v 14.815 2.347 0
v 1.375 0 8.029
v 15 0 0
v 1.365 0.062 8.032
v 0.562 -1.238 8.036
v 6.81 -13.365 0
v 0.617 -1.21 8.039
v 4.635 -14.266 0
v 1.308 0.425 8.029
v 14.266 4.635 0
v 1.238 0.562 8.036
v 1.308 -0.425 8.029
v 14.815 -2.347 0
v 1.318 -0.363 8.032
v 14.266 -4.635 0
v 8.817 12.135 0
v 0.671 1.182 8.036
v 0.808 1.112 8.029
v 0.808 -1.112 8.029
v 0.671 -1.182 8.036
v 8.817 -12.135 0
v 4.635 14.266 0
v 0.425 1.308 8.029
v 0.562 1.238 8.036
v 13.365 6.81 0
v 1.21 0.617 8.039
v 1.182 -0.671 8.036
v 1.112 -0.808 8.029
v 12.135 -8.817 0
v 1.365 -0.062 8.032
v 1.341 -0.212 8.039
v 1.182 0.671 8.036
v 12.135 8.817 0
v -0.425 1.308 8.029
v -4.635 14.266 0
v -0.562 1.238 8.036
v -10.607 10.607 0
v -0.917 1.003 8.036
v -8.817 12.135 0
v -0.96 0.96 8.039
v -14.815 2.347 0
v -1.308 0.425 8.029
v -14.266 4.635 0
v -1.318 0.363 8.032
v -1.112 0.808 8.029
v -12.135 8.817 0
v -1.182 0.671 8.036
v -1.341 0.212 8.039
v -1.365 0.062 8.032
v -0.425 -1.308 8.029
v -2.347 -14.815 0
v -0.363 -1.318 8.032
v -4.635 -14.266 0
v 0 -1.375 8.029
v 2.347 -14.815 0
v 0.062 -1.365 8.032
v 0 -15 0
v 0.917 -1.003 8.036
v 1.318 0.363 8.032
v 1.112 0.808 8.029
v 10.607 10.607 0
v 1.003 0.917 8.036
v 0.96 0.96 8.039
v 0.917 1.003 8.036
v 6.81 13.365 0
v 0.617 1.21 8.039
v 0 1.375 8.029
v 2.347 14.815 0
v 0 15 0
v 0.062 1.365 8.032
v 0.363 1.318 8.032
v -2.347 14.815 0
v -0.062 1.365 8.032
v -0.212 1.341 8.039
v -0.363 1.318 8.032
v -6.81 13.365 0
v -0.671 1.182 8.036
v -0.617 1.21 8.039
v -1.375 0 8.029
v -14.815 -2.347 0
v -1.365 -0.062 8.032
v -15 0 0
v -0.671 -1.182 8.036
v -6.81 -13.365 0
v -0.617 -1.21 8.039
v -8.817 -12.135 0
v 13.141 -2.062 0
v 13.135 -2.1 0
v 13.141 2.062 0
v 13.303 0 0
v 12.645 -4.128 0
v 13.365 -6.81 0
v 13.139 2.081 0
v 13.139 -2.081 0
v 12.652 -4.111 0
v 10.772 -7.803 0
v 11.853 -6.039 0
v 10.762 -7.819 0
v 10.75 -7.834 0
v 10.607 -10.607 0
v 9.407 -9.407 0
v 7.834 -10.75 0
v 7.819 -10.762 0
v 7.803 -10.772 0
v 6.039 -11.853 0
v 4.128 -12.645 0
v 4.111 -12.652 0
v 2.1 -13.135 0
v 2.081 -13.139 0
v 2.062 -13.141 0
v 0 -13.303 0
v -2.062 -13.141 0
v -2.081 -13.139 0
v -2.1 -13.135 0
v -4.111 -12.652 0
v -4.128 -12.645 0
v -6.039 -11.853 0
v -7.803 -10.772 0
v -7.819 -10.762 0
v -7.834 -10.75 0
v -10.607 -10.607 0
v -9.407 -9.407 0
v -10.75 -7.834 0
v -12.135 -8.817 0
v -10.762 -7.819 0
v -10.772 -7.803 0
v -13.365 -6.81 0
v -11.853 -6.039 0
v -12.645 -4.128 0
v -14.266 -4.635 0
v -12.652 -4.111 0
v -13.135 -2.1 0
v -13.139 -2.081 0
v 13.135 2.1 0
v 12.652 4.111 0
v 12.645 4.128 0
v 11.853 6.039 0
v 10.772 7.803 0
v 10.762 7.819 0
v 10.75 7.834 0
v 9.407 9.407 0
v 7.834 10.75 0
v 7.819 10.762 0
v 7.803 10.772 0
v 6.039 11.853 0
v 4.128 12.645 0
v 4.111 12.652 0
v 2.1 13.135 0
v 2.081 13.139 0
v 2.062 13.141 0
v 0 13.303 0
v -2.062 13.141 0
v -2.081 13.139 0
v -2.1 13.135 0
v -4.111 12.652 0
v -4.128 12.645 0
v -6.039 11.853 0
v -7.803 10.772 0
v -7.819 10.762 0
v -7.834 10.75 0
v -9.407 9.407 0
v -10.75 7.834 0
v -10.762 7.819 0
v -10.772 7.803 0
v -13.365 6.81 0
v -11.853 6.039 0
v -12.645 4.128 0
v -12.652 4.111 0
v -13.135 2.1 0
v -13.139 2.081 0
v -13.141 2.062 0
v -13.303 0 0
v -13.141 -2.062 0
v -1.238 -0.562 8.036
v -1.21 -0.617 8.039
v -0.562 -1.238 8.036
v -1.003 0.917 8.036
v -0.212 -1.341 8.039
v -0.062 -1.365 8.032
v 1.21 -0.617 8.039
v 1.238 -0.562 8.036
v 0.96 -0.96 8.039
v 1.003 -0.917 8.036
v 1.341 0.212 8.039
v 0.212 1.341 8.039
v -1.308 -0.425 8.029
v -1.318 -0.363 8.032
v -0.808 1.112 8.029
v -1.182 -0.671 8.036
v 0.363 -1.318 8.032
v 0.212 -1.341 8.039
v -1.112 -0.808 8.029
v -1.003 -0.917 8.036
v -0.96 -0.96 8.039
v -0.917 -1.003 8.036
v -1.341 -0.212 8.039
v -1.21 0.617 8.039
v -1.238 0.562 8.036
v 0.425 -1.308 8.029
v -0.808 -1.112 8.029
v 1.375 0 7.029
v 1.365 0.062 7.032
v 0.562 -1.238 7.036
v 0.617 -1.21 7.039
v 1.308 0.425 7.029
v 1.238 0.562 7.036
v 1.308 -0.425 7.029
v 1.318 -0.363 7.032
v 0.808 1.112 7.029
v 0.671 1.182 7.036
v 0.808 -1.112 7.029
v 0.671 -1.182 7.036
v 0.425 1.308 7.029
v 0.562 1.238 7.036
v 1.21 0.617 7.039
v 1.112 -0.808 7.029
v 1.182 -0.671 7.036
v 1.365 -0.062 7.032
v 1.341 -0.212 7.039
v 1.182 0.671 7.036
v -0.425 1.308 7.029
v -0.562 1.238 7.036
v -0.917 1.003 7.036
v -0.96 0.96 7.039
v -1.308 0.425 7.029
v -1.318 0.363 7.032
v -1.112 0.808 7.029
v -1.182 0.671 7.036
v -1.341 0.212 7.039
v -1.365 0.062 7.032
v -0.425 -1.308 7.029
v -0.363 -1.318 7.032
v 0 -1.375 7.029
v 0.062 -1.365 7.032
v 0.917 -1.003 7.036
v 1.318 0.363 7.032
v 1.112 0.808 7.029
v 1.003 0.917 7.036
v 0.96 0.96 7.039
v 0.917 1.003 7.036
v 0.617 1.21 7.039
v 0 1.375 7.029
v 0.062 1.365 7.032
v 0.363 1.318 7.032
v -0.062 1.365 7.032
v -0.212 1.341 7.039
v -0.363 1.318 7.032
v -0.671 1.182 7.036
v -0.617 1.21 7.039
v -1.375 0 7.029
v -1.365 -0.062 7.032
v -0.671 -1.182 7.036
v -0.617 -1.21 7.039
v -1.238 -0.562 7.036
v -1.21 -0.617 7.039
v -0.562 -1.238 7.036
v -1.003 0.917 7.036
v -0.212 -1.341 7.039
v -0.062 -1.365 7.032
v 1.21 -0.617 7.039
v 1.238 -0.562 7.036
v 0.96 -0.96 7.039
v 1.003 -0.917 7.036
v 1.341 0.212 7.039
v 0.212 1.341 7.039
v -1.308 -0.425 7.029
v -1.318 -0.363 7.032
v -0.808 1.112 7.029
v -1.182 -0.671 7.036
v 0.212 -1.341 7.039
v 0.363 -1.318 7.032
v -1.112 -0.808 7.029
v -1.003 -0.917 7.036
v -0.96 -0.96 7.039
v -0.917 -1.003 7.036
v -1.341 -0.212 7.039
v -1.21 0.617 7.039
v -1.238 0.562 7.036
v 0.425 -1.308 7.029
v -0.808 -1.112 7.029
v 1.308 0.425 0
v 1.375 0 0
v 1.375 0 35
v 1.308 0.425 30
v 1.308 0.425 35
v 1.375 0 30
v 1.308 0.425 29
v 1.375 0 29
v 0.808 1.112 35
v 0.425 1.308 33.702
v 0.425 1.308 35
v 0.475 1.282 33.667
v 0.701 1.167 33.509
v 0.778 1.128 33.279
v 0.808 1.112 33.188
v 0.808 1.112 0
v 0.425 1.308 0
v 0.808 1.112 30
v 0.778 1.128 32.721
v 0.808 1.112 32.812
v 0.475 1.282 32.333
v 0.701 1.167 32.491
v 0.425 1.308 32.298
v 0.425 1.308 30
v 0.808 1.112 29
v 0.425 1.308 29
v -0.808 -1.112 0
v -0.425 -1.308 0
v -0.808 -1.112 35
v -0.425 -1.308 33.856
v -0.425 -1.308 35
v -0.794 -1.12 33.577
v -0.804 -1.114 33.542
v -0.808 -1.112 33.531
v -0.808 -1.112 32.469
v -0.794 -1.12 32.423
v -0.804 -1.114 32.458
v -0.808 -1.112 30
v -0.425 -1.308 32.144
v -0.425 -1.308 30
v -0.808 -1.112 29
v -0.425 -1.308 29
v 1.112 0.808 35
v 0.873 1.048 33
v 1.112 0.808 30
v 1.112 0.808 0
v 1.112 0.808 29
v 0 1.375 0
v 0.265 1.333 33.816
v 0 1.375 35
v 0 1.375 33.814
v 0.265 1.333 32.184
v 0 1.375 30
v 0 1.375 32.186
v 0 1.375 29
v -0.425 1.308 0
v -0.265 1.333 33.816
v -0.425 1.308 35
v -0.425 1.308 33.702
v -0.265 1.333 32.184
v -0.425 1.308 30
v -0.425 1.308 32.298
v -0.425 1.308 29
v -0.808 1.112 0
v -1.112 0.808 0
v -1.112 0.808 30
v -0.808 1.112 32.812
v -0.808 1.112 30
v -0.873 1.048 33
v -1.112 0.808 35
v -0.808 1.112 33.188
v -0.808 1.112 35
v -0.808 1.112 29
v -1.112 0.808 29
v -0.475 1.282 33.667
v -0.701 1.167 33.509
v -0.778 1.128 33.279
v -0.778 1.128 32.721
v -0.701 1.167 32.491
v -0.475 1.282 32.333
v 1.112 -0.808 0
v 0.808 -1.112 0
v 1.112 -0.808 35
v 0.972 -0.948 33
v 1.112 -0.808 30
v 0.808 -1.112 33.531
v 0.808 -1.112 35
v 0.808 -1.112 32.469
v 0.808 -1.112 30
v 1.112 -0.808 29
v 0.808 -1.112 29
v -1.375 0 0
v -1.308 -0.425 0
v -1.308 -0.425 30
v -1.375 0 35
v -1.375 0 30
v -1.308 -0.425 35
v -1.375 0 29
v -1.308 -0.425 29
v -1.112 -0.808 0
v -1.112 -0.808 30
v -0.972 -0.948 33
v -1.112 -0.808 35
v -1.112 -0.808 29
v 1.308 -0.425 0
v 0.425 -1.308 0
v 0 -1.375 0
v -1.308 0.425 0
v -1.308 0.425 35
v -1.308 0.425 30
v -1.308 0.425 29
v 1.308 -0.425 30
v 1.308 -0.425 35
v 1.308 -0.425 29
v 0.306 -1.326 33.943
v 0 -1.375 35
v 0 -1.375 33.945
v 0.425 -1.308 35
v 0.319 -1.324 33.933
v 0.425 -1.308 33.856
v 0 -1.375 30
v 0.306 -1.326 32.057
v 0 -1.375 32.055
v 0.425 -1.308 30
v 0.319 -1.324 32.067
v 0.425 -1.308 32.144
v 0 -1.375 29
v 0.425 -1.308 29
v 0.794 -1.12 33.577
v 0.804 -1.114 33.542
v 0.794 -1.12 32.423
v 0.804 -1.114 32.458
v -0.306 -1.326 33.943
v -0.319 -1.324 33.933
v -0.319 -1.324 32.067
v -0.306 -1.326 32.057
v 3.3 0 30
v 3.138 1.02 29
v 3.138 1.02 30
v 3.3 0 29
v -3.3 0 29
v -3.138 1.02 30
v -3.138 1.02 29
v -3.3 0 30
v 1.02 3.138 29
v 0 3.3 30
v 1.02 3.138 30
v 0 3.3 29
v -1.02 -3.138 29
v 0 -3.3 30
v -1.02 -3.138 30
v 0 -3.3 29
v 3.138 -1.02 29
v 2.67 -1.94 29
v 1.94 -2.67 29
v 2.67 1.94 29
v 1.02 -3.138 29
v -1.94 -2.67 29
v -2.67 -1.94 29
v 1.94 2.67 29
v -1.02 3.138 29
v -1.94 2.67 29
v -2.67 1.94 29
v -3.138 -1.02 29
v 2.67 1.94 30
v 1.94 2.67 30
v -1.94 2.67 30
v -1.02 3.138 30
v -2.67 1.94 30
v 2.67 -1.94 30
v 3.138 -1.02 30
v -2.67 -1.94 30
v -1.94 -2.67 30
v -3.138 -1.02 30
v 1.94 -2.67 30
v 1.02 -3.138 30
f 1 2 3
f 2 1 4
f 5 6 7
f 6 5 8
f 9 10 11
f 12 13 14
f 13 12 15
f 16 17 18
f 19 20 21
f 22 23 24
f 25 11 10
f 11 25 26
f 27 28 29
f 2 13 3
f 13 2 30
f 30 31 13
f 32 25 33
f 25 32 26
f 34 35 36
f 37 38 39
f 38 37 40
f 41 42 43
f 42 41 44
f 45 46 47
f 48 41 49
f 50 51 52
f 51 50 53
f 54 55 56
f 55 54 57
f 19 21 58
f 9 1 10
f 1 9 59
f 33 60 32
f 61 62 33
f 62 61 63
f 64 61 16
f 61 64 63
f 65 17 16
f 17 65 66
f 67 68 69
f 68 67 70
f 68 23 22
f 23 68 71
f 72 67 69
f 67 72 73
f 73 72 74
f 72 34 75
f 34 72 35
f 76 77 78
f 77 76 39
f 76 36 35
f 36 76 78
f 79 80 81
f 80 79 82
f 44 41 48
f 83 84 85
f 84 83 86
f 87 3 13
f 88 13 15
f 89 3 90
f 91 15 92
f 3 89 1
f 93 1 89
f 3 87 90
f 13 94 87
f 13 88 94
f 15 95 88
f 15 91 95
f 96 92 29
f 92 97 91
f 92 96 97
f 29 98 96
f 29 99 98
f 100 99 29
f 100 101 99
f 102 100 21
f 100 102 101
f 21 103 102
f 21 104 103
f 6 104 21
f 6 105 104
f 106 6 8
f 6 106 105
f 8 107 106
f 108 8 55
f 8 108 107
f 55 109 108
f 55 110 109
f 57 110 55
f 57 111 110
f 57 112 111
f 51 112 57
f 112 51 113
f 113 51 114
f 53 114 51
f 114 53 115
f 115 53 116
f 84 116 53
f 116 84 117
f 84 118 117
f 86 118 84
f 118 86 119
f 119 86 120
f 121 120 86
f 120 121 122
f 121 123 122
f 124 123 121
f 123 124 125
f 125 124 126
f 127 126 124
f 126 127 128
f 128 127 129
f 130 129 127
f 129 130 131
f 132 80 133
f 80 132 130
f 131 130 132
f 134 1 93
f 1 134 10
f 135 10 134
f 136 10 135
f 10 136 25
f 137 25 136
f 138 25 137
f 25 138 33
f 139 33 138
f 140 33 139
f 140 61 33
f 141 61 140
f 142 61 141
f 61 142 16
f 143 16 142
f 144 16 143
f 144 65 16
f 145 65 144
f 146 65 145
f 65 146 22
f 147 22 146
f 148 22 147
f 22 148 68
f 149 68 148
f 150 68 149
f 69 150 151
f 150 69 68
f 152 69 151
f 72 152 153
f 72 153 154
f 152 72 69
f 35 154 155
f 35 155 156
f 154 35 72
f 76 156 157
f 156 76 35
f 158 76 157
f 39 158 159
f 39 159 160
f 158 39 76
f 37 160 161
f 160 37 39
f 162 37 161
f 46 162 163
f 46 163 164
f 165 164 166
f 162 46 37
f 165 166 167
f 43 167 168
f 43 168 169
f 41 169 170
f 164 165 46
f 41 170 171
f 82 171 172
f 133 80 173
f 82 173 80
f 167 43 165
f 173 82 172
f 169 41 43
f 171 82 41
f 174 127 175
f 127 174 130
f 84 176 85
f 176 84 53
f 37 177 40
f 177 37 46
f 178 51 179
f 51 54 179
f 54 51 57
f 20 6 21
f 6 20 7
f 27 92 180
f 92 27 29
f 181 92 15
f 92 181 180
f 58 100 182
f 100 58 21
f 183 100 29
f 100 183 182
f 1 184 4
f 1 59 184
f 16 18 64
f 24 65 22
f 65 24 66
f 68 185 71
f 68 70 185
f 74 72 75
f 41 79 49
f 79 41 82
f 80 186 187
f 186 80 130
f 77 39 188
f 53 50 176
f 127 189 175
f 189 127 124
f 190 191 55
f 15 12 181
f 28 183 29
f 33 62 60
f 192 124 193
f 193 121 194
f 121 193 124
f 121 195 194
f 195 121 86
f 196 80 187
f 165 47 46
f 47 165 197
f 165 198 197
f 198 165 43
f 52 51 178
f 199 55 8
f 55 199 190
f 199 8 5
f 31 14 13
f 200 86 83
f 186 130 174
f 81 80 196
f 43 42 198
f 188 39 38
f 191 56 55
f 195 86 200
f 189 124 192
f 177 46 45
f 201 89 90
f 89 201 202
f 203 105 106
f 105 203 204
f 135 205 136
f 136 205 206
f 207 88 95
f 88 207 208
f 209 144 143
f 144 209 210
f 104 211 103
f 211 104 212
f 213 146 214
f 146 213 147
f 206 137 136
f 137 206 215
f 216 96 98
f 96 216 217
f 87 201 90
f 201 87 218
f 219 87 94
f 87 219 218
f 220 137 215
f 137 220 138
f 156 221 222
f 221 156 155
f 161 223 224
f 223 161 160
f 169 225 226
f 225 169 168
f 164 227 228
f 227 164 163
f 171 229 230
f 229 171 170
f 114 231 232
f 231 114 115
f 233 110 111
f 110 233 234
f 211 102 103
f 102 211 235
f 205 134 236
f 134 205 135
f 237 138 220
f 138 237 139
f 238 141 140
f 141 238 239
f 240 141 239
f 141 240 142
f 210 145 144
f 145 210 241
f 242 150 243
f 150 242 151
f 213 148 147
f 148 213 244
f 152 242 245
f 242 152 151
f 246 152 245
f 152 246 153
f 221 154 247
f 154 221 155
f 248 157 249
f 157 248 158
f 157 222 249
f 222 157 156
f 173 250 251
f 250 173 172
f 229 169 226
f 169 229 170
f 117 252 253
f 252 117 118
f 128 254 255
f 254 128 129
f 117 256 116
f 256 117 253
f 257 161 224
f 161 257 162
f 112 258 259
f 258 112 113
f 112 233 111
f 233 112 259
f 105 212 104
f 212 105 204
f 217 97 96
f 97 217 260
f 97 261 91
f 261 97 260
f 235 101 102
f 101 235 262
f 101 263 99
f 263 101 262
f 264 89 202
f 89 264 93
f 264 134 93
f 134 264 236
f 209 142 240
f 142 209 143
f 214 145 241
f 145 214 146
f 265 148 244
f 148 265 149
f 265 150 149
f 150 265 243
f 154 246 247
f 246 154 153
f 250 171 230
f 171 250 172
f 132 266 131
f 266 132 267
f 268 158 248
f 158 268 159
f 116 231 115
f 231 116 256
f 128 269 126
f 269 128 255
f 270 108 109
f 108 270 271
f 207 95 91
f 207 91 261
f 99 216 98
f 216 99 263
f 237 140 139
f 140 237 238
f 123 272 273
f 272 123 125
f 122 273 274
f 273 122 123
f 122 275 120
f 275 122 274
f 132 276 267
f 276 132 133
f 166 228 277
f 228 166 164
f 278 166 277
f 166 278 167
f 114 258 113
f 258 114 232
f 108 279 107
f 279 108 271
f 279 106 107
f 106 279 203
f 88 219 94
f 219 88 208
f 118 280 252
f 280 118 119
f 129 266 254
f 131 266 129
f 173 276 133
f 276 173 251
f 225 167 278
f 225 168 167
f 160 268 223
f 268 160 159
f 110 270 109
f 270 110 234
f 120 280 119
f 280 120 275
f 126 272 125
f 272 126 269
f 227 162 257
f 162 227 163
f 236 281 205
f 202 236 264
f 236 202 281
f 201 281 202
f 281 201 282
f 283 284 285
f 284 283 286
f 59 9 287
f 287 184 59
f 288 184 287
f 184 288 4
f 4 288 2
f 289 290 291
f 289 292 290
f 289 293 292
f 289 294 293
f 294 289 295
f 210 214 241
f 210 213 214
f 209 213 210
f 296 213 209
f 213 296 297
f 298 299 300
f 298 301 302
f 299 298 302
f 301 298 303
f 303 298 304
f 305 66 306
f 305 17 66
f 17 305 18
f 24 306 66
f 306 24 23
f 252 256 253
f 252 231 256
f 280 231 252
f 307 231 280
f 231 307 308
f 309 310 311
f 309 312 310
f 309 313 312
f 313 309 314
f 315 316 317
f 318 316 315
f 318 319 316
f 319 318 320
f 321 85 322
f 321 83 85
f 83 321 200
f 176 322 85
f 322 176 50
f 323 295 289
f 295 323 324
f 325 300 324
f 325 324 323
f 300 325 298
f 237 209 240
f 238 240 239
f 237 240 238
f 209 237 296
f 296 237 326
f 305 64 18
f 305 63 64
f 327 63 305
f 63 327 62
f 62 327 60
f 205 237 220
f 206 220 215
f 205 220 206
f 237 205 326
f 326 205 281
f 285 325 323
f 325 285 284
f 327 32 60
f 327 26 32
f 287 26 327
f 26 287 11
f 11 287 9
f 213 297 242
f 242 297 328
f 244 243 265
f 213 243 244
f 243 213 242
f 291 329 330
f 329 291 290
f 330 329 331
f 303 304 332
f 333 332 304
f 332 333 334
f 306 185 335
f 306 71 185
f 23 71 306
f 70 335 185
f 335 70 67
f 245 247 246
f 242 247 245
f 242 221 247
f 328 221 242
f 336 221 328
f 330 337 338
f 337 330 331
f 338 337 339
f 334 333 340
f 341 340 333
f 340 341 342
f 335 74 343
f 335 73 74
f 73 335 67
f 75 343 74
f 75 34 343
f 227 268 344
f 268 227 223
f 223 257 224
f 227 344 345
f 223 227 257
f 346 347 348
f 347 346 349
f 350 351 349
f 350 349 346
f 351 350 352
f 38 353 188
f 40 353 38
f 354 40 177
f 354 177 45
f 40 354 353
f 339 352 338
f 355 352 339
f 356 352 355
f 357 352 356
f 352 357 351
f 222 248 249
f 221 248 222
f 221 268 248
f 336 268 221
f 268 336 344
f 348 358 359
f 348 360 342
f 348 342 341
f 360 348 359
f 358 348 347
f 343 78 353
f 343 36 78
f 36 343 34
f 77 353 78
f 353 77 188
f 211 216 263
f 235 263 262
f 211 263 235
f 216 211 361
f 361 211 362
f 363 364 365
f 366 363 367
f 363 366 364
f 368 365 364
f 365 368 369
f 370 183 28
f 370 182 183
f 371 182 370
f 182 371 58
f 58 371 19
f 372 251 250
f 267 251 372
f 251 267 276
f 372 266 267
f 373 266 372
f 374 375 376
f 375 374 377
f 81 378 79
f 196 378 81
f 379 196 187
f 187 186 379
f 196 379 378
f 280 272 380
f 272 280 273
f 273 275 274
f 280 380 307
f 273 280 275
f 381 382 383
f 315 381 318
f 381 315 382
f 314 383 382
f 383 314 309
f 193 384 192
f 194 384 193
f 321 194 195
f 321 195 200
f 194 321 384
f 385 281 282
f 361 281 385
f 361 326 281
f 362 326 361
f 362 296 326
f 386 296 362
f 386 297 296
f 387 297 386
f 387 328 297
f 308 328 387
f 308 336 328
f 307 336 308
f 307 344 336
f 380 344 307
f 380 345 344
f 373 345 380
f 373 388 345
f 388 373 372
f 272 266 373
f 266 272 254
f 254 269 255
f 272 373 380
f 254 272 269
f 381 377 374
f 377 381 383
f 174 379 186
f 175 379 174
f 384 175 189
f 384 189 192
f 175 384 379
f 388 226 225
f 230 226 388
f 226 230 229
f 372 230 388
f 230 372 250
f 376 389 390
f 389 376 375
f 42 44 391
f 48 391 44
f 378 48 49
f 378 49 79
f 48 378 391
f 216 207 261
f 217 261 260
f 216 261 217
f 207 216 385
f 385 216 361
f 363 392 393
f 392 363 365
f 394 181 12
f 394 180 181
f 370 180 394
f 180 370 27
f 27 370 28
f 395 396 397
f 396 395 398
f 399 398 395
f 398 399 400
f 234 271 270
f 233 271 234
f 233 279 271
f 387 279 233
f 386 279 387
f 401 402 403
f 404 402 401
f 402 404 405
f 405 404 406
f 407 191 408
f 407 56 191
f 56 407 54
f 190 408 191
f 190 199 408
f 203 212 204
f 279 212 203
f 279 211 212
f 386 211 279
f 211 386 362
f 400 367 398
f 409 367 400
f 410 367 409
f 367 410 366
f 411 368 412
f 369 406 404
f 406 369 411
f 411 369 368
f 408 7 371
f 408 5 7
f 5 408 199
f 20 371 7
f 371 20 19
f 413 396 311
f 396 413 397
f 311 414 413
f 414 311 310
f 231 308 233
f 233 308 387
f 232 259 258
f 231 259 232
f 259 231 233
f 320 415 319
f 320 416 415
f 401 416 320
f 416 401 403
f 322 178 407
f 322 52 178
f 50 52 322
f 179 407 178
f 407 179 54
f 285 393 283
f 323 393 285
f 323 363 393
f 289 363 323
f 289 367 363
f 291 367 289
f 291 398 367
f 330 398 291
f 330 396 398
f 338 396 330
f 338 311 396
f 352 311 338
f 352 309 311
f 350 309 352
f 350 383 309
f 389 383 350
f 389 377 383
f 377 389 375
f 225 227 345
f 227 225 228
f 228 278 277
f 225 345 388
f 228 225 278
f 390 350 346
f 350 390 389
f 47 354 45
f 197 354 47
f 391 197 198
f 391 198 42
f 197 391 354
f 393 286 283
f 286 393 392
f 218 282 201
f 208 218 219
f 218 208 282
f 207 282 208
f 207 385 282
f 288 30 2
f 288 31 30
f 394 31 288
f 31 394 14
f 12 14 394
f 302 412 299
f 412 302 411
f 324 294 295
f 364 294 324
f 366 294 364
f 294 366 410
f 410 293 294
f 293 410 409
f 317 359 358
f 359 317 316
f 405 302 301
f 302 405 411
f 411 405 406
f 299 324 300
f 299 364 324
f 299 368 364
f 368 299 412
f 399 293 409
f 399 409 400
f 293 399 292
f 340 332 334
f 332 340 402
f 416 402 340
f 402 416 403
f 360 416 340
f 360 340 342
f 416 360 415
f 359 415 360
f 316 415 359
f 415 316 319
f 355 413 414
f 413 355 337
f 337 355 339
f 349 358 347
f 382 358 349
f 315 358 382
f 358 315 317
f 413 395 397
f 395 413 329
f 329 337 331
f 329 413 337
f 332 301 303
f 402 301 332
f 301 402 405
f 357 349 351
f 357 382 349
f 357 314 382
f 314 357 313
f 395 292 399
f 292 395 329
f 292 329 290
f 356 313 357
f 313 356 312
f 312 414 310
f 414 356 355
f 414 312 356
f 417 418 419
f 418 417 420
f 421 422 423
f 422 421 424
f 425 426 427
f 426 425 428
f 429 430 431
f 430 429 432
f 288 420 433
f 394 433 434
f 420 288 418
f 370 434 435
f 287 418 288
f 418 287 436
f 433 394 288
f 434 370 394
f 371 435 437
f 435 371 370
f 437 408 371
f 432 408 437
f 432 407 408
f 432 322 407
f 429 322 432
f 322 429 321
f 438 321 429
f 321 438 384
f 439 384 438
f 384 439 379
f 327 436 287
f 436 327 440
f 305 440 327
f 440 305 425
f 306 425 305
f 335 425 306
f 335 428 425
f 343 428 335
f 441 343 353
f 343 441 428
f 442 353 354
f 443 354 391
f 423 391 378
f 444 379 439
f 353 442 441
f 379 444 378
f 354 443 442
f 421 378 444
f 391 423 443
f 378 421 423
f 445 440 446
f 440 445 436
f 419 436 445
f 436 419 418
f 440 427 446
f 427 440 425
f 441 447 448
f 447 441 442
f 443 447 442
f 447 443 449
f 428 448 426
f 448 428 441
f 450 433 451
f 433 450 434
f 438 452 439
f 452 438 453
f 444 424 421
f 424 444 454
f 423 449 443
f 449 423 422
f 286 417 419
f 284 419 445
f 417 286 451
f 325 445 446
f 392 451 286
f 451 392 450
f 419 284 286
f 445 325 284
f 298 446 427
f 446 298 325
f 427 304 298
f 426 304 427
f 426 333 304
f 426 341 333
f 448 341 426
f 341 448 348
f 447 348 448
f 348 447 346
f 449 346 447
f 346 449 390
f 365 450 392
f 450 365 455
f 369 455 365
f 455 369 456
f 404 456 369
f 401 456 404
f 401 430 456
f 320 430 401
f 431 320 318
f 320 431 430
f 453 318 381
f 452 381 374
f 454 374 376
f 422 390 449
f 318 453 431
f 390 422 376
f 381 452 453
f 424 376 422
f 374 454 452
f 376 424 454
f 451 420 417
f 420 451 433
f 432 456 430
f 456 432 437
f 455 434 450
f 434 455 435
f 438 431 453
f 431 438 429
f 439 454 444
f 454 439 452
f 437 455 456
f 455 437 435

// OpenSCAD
pegDia = 2.75; 

module pin() {
    difference() {
        cylinder(h=35, r=(pegDia/2), $fn=20);
        translate([0,1,33]) rotate([90,0,0]) {
            cylinder(5, 1, $fn=10, center=true);
        }
    }
    translate([0,0,29]) {
        cylinder(h=1,r=(pegDia*1.2),1,$fn=20);
    }
    difference() {
        cylinder(pegDia*3,15,$fn=40);
        translate([0,0,-1]) {
            cylinder(pegDia*3,15,$fn=40);
        }
    }   
}

pin();
